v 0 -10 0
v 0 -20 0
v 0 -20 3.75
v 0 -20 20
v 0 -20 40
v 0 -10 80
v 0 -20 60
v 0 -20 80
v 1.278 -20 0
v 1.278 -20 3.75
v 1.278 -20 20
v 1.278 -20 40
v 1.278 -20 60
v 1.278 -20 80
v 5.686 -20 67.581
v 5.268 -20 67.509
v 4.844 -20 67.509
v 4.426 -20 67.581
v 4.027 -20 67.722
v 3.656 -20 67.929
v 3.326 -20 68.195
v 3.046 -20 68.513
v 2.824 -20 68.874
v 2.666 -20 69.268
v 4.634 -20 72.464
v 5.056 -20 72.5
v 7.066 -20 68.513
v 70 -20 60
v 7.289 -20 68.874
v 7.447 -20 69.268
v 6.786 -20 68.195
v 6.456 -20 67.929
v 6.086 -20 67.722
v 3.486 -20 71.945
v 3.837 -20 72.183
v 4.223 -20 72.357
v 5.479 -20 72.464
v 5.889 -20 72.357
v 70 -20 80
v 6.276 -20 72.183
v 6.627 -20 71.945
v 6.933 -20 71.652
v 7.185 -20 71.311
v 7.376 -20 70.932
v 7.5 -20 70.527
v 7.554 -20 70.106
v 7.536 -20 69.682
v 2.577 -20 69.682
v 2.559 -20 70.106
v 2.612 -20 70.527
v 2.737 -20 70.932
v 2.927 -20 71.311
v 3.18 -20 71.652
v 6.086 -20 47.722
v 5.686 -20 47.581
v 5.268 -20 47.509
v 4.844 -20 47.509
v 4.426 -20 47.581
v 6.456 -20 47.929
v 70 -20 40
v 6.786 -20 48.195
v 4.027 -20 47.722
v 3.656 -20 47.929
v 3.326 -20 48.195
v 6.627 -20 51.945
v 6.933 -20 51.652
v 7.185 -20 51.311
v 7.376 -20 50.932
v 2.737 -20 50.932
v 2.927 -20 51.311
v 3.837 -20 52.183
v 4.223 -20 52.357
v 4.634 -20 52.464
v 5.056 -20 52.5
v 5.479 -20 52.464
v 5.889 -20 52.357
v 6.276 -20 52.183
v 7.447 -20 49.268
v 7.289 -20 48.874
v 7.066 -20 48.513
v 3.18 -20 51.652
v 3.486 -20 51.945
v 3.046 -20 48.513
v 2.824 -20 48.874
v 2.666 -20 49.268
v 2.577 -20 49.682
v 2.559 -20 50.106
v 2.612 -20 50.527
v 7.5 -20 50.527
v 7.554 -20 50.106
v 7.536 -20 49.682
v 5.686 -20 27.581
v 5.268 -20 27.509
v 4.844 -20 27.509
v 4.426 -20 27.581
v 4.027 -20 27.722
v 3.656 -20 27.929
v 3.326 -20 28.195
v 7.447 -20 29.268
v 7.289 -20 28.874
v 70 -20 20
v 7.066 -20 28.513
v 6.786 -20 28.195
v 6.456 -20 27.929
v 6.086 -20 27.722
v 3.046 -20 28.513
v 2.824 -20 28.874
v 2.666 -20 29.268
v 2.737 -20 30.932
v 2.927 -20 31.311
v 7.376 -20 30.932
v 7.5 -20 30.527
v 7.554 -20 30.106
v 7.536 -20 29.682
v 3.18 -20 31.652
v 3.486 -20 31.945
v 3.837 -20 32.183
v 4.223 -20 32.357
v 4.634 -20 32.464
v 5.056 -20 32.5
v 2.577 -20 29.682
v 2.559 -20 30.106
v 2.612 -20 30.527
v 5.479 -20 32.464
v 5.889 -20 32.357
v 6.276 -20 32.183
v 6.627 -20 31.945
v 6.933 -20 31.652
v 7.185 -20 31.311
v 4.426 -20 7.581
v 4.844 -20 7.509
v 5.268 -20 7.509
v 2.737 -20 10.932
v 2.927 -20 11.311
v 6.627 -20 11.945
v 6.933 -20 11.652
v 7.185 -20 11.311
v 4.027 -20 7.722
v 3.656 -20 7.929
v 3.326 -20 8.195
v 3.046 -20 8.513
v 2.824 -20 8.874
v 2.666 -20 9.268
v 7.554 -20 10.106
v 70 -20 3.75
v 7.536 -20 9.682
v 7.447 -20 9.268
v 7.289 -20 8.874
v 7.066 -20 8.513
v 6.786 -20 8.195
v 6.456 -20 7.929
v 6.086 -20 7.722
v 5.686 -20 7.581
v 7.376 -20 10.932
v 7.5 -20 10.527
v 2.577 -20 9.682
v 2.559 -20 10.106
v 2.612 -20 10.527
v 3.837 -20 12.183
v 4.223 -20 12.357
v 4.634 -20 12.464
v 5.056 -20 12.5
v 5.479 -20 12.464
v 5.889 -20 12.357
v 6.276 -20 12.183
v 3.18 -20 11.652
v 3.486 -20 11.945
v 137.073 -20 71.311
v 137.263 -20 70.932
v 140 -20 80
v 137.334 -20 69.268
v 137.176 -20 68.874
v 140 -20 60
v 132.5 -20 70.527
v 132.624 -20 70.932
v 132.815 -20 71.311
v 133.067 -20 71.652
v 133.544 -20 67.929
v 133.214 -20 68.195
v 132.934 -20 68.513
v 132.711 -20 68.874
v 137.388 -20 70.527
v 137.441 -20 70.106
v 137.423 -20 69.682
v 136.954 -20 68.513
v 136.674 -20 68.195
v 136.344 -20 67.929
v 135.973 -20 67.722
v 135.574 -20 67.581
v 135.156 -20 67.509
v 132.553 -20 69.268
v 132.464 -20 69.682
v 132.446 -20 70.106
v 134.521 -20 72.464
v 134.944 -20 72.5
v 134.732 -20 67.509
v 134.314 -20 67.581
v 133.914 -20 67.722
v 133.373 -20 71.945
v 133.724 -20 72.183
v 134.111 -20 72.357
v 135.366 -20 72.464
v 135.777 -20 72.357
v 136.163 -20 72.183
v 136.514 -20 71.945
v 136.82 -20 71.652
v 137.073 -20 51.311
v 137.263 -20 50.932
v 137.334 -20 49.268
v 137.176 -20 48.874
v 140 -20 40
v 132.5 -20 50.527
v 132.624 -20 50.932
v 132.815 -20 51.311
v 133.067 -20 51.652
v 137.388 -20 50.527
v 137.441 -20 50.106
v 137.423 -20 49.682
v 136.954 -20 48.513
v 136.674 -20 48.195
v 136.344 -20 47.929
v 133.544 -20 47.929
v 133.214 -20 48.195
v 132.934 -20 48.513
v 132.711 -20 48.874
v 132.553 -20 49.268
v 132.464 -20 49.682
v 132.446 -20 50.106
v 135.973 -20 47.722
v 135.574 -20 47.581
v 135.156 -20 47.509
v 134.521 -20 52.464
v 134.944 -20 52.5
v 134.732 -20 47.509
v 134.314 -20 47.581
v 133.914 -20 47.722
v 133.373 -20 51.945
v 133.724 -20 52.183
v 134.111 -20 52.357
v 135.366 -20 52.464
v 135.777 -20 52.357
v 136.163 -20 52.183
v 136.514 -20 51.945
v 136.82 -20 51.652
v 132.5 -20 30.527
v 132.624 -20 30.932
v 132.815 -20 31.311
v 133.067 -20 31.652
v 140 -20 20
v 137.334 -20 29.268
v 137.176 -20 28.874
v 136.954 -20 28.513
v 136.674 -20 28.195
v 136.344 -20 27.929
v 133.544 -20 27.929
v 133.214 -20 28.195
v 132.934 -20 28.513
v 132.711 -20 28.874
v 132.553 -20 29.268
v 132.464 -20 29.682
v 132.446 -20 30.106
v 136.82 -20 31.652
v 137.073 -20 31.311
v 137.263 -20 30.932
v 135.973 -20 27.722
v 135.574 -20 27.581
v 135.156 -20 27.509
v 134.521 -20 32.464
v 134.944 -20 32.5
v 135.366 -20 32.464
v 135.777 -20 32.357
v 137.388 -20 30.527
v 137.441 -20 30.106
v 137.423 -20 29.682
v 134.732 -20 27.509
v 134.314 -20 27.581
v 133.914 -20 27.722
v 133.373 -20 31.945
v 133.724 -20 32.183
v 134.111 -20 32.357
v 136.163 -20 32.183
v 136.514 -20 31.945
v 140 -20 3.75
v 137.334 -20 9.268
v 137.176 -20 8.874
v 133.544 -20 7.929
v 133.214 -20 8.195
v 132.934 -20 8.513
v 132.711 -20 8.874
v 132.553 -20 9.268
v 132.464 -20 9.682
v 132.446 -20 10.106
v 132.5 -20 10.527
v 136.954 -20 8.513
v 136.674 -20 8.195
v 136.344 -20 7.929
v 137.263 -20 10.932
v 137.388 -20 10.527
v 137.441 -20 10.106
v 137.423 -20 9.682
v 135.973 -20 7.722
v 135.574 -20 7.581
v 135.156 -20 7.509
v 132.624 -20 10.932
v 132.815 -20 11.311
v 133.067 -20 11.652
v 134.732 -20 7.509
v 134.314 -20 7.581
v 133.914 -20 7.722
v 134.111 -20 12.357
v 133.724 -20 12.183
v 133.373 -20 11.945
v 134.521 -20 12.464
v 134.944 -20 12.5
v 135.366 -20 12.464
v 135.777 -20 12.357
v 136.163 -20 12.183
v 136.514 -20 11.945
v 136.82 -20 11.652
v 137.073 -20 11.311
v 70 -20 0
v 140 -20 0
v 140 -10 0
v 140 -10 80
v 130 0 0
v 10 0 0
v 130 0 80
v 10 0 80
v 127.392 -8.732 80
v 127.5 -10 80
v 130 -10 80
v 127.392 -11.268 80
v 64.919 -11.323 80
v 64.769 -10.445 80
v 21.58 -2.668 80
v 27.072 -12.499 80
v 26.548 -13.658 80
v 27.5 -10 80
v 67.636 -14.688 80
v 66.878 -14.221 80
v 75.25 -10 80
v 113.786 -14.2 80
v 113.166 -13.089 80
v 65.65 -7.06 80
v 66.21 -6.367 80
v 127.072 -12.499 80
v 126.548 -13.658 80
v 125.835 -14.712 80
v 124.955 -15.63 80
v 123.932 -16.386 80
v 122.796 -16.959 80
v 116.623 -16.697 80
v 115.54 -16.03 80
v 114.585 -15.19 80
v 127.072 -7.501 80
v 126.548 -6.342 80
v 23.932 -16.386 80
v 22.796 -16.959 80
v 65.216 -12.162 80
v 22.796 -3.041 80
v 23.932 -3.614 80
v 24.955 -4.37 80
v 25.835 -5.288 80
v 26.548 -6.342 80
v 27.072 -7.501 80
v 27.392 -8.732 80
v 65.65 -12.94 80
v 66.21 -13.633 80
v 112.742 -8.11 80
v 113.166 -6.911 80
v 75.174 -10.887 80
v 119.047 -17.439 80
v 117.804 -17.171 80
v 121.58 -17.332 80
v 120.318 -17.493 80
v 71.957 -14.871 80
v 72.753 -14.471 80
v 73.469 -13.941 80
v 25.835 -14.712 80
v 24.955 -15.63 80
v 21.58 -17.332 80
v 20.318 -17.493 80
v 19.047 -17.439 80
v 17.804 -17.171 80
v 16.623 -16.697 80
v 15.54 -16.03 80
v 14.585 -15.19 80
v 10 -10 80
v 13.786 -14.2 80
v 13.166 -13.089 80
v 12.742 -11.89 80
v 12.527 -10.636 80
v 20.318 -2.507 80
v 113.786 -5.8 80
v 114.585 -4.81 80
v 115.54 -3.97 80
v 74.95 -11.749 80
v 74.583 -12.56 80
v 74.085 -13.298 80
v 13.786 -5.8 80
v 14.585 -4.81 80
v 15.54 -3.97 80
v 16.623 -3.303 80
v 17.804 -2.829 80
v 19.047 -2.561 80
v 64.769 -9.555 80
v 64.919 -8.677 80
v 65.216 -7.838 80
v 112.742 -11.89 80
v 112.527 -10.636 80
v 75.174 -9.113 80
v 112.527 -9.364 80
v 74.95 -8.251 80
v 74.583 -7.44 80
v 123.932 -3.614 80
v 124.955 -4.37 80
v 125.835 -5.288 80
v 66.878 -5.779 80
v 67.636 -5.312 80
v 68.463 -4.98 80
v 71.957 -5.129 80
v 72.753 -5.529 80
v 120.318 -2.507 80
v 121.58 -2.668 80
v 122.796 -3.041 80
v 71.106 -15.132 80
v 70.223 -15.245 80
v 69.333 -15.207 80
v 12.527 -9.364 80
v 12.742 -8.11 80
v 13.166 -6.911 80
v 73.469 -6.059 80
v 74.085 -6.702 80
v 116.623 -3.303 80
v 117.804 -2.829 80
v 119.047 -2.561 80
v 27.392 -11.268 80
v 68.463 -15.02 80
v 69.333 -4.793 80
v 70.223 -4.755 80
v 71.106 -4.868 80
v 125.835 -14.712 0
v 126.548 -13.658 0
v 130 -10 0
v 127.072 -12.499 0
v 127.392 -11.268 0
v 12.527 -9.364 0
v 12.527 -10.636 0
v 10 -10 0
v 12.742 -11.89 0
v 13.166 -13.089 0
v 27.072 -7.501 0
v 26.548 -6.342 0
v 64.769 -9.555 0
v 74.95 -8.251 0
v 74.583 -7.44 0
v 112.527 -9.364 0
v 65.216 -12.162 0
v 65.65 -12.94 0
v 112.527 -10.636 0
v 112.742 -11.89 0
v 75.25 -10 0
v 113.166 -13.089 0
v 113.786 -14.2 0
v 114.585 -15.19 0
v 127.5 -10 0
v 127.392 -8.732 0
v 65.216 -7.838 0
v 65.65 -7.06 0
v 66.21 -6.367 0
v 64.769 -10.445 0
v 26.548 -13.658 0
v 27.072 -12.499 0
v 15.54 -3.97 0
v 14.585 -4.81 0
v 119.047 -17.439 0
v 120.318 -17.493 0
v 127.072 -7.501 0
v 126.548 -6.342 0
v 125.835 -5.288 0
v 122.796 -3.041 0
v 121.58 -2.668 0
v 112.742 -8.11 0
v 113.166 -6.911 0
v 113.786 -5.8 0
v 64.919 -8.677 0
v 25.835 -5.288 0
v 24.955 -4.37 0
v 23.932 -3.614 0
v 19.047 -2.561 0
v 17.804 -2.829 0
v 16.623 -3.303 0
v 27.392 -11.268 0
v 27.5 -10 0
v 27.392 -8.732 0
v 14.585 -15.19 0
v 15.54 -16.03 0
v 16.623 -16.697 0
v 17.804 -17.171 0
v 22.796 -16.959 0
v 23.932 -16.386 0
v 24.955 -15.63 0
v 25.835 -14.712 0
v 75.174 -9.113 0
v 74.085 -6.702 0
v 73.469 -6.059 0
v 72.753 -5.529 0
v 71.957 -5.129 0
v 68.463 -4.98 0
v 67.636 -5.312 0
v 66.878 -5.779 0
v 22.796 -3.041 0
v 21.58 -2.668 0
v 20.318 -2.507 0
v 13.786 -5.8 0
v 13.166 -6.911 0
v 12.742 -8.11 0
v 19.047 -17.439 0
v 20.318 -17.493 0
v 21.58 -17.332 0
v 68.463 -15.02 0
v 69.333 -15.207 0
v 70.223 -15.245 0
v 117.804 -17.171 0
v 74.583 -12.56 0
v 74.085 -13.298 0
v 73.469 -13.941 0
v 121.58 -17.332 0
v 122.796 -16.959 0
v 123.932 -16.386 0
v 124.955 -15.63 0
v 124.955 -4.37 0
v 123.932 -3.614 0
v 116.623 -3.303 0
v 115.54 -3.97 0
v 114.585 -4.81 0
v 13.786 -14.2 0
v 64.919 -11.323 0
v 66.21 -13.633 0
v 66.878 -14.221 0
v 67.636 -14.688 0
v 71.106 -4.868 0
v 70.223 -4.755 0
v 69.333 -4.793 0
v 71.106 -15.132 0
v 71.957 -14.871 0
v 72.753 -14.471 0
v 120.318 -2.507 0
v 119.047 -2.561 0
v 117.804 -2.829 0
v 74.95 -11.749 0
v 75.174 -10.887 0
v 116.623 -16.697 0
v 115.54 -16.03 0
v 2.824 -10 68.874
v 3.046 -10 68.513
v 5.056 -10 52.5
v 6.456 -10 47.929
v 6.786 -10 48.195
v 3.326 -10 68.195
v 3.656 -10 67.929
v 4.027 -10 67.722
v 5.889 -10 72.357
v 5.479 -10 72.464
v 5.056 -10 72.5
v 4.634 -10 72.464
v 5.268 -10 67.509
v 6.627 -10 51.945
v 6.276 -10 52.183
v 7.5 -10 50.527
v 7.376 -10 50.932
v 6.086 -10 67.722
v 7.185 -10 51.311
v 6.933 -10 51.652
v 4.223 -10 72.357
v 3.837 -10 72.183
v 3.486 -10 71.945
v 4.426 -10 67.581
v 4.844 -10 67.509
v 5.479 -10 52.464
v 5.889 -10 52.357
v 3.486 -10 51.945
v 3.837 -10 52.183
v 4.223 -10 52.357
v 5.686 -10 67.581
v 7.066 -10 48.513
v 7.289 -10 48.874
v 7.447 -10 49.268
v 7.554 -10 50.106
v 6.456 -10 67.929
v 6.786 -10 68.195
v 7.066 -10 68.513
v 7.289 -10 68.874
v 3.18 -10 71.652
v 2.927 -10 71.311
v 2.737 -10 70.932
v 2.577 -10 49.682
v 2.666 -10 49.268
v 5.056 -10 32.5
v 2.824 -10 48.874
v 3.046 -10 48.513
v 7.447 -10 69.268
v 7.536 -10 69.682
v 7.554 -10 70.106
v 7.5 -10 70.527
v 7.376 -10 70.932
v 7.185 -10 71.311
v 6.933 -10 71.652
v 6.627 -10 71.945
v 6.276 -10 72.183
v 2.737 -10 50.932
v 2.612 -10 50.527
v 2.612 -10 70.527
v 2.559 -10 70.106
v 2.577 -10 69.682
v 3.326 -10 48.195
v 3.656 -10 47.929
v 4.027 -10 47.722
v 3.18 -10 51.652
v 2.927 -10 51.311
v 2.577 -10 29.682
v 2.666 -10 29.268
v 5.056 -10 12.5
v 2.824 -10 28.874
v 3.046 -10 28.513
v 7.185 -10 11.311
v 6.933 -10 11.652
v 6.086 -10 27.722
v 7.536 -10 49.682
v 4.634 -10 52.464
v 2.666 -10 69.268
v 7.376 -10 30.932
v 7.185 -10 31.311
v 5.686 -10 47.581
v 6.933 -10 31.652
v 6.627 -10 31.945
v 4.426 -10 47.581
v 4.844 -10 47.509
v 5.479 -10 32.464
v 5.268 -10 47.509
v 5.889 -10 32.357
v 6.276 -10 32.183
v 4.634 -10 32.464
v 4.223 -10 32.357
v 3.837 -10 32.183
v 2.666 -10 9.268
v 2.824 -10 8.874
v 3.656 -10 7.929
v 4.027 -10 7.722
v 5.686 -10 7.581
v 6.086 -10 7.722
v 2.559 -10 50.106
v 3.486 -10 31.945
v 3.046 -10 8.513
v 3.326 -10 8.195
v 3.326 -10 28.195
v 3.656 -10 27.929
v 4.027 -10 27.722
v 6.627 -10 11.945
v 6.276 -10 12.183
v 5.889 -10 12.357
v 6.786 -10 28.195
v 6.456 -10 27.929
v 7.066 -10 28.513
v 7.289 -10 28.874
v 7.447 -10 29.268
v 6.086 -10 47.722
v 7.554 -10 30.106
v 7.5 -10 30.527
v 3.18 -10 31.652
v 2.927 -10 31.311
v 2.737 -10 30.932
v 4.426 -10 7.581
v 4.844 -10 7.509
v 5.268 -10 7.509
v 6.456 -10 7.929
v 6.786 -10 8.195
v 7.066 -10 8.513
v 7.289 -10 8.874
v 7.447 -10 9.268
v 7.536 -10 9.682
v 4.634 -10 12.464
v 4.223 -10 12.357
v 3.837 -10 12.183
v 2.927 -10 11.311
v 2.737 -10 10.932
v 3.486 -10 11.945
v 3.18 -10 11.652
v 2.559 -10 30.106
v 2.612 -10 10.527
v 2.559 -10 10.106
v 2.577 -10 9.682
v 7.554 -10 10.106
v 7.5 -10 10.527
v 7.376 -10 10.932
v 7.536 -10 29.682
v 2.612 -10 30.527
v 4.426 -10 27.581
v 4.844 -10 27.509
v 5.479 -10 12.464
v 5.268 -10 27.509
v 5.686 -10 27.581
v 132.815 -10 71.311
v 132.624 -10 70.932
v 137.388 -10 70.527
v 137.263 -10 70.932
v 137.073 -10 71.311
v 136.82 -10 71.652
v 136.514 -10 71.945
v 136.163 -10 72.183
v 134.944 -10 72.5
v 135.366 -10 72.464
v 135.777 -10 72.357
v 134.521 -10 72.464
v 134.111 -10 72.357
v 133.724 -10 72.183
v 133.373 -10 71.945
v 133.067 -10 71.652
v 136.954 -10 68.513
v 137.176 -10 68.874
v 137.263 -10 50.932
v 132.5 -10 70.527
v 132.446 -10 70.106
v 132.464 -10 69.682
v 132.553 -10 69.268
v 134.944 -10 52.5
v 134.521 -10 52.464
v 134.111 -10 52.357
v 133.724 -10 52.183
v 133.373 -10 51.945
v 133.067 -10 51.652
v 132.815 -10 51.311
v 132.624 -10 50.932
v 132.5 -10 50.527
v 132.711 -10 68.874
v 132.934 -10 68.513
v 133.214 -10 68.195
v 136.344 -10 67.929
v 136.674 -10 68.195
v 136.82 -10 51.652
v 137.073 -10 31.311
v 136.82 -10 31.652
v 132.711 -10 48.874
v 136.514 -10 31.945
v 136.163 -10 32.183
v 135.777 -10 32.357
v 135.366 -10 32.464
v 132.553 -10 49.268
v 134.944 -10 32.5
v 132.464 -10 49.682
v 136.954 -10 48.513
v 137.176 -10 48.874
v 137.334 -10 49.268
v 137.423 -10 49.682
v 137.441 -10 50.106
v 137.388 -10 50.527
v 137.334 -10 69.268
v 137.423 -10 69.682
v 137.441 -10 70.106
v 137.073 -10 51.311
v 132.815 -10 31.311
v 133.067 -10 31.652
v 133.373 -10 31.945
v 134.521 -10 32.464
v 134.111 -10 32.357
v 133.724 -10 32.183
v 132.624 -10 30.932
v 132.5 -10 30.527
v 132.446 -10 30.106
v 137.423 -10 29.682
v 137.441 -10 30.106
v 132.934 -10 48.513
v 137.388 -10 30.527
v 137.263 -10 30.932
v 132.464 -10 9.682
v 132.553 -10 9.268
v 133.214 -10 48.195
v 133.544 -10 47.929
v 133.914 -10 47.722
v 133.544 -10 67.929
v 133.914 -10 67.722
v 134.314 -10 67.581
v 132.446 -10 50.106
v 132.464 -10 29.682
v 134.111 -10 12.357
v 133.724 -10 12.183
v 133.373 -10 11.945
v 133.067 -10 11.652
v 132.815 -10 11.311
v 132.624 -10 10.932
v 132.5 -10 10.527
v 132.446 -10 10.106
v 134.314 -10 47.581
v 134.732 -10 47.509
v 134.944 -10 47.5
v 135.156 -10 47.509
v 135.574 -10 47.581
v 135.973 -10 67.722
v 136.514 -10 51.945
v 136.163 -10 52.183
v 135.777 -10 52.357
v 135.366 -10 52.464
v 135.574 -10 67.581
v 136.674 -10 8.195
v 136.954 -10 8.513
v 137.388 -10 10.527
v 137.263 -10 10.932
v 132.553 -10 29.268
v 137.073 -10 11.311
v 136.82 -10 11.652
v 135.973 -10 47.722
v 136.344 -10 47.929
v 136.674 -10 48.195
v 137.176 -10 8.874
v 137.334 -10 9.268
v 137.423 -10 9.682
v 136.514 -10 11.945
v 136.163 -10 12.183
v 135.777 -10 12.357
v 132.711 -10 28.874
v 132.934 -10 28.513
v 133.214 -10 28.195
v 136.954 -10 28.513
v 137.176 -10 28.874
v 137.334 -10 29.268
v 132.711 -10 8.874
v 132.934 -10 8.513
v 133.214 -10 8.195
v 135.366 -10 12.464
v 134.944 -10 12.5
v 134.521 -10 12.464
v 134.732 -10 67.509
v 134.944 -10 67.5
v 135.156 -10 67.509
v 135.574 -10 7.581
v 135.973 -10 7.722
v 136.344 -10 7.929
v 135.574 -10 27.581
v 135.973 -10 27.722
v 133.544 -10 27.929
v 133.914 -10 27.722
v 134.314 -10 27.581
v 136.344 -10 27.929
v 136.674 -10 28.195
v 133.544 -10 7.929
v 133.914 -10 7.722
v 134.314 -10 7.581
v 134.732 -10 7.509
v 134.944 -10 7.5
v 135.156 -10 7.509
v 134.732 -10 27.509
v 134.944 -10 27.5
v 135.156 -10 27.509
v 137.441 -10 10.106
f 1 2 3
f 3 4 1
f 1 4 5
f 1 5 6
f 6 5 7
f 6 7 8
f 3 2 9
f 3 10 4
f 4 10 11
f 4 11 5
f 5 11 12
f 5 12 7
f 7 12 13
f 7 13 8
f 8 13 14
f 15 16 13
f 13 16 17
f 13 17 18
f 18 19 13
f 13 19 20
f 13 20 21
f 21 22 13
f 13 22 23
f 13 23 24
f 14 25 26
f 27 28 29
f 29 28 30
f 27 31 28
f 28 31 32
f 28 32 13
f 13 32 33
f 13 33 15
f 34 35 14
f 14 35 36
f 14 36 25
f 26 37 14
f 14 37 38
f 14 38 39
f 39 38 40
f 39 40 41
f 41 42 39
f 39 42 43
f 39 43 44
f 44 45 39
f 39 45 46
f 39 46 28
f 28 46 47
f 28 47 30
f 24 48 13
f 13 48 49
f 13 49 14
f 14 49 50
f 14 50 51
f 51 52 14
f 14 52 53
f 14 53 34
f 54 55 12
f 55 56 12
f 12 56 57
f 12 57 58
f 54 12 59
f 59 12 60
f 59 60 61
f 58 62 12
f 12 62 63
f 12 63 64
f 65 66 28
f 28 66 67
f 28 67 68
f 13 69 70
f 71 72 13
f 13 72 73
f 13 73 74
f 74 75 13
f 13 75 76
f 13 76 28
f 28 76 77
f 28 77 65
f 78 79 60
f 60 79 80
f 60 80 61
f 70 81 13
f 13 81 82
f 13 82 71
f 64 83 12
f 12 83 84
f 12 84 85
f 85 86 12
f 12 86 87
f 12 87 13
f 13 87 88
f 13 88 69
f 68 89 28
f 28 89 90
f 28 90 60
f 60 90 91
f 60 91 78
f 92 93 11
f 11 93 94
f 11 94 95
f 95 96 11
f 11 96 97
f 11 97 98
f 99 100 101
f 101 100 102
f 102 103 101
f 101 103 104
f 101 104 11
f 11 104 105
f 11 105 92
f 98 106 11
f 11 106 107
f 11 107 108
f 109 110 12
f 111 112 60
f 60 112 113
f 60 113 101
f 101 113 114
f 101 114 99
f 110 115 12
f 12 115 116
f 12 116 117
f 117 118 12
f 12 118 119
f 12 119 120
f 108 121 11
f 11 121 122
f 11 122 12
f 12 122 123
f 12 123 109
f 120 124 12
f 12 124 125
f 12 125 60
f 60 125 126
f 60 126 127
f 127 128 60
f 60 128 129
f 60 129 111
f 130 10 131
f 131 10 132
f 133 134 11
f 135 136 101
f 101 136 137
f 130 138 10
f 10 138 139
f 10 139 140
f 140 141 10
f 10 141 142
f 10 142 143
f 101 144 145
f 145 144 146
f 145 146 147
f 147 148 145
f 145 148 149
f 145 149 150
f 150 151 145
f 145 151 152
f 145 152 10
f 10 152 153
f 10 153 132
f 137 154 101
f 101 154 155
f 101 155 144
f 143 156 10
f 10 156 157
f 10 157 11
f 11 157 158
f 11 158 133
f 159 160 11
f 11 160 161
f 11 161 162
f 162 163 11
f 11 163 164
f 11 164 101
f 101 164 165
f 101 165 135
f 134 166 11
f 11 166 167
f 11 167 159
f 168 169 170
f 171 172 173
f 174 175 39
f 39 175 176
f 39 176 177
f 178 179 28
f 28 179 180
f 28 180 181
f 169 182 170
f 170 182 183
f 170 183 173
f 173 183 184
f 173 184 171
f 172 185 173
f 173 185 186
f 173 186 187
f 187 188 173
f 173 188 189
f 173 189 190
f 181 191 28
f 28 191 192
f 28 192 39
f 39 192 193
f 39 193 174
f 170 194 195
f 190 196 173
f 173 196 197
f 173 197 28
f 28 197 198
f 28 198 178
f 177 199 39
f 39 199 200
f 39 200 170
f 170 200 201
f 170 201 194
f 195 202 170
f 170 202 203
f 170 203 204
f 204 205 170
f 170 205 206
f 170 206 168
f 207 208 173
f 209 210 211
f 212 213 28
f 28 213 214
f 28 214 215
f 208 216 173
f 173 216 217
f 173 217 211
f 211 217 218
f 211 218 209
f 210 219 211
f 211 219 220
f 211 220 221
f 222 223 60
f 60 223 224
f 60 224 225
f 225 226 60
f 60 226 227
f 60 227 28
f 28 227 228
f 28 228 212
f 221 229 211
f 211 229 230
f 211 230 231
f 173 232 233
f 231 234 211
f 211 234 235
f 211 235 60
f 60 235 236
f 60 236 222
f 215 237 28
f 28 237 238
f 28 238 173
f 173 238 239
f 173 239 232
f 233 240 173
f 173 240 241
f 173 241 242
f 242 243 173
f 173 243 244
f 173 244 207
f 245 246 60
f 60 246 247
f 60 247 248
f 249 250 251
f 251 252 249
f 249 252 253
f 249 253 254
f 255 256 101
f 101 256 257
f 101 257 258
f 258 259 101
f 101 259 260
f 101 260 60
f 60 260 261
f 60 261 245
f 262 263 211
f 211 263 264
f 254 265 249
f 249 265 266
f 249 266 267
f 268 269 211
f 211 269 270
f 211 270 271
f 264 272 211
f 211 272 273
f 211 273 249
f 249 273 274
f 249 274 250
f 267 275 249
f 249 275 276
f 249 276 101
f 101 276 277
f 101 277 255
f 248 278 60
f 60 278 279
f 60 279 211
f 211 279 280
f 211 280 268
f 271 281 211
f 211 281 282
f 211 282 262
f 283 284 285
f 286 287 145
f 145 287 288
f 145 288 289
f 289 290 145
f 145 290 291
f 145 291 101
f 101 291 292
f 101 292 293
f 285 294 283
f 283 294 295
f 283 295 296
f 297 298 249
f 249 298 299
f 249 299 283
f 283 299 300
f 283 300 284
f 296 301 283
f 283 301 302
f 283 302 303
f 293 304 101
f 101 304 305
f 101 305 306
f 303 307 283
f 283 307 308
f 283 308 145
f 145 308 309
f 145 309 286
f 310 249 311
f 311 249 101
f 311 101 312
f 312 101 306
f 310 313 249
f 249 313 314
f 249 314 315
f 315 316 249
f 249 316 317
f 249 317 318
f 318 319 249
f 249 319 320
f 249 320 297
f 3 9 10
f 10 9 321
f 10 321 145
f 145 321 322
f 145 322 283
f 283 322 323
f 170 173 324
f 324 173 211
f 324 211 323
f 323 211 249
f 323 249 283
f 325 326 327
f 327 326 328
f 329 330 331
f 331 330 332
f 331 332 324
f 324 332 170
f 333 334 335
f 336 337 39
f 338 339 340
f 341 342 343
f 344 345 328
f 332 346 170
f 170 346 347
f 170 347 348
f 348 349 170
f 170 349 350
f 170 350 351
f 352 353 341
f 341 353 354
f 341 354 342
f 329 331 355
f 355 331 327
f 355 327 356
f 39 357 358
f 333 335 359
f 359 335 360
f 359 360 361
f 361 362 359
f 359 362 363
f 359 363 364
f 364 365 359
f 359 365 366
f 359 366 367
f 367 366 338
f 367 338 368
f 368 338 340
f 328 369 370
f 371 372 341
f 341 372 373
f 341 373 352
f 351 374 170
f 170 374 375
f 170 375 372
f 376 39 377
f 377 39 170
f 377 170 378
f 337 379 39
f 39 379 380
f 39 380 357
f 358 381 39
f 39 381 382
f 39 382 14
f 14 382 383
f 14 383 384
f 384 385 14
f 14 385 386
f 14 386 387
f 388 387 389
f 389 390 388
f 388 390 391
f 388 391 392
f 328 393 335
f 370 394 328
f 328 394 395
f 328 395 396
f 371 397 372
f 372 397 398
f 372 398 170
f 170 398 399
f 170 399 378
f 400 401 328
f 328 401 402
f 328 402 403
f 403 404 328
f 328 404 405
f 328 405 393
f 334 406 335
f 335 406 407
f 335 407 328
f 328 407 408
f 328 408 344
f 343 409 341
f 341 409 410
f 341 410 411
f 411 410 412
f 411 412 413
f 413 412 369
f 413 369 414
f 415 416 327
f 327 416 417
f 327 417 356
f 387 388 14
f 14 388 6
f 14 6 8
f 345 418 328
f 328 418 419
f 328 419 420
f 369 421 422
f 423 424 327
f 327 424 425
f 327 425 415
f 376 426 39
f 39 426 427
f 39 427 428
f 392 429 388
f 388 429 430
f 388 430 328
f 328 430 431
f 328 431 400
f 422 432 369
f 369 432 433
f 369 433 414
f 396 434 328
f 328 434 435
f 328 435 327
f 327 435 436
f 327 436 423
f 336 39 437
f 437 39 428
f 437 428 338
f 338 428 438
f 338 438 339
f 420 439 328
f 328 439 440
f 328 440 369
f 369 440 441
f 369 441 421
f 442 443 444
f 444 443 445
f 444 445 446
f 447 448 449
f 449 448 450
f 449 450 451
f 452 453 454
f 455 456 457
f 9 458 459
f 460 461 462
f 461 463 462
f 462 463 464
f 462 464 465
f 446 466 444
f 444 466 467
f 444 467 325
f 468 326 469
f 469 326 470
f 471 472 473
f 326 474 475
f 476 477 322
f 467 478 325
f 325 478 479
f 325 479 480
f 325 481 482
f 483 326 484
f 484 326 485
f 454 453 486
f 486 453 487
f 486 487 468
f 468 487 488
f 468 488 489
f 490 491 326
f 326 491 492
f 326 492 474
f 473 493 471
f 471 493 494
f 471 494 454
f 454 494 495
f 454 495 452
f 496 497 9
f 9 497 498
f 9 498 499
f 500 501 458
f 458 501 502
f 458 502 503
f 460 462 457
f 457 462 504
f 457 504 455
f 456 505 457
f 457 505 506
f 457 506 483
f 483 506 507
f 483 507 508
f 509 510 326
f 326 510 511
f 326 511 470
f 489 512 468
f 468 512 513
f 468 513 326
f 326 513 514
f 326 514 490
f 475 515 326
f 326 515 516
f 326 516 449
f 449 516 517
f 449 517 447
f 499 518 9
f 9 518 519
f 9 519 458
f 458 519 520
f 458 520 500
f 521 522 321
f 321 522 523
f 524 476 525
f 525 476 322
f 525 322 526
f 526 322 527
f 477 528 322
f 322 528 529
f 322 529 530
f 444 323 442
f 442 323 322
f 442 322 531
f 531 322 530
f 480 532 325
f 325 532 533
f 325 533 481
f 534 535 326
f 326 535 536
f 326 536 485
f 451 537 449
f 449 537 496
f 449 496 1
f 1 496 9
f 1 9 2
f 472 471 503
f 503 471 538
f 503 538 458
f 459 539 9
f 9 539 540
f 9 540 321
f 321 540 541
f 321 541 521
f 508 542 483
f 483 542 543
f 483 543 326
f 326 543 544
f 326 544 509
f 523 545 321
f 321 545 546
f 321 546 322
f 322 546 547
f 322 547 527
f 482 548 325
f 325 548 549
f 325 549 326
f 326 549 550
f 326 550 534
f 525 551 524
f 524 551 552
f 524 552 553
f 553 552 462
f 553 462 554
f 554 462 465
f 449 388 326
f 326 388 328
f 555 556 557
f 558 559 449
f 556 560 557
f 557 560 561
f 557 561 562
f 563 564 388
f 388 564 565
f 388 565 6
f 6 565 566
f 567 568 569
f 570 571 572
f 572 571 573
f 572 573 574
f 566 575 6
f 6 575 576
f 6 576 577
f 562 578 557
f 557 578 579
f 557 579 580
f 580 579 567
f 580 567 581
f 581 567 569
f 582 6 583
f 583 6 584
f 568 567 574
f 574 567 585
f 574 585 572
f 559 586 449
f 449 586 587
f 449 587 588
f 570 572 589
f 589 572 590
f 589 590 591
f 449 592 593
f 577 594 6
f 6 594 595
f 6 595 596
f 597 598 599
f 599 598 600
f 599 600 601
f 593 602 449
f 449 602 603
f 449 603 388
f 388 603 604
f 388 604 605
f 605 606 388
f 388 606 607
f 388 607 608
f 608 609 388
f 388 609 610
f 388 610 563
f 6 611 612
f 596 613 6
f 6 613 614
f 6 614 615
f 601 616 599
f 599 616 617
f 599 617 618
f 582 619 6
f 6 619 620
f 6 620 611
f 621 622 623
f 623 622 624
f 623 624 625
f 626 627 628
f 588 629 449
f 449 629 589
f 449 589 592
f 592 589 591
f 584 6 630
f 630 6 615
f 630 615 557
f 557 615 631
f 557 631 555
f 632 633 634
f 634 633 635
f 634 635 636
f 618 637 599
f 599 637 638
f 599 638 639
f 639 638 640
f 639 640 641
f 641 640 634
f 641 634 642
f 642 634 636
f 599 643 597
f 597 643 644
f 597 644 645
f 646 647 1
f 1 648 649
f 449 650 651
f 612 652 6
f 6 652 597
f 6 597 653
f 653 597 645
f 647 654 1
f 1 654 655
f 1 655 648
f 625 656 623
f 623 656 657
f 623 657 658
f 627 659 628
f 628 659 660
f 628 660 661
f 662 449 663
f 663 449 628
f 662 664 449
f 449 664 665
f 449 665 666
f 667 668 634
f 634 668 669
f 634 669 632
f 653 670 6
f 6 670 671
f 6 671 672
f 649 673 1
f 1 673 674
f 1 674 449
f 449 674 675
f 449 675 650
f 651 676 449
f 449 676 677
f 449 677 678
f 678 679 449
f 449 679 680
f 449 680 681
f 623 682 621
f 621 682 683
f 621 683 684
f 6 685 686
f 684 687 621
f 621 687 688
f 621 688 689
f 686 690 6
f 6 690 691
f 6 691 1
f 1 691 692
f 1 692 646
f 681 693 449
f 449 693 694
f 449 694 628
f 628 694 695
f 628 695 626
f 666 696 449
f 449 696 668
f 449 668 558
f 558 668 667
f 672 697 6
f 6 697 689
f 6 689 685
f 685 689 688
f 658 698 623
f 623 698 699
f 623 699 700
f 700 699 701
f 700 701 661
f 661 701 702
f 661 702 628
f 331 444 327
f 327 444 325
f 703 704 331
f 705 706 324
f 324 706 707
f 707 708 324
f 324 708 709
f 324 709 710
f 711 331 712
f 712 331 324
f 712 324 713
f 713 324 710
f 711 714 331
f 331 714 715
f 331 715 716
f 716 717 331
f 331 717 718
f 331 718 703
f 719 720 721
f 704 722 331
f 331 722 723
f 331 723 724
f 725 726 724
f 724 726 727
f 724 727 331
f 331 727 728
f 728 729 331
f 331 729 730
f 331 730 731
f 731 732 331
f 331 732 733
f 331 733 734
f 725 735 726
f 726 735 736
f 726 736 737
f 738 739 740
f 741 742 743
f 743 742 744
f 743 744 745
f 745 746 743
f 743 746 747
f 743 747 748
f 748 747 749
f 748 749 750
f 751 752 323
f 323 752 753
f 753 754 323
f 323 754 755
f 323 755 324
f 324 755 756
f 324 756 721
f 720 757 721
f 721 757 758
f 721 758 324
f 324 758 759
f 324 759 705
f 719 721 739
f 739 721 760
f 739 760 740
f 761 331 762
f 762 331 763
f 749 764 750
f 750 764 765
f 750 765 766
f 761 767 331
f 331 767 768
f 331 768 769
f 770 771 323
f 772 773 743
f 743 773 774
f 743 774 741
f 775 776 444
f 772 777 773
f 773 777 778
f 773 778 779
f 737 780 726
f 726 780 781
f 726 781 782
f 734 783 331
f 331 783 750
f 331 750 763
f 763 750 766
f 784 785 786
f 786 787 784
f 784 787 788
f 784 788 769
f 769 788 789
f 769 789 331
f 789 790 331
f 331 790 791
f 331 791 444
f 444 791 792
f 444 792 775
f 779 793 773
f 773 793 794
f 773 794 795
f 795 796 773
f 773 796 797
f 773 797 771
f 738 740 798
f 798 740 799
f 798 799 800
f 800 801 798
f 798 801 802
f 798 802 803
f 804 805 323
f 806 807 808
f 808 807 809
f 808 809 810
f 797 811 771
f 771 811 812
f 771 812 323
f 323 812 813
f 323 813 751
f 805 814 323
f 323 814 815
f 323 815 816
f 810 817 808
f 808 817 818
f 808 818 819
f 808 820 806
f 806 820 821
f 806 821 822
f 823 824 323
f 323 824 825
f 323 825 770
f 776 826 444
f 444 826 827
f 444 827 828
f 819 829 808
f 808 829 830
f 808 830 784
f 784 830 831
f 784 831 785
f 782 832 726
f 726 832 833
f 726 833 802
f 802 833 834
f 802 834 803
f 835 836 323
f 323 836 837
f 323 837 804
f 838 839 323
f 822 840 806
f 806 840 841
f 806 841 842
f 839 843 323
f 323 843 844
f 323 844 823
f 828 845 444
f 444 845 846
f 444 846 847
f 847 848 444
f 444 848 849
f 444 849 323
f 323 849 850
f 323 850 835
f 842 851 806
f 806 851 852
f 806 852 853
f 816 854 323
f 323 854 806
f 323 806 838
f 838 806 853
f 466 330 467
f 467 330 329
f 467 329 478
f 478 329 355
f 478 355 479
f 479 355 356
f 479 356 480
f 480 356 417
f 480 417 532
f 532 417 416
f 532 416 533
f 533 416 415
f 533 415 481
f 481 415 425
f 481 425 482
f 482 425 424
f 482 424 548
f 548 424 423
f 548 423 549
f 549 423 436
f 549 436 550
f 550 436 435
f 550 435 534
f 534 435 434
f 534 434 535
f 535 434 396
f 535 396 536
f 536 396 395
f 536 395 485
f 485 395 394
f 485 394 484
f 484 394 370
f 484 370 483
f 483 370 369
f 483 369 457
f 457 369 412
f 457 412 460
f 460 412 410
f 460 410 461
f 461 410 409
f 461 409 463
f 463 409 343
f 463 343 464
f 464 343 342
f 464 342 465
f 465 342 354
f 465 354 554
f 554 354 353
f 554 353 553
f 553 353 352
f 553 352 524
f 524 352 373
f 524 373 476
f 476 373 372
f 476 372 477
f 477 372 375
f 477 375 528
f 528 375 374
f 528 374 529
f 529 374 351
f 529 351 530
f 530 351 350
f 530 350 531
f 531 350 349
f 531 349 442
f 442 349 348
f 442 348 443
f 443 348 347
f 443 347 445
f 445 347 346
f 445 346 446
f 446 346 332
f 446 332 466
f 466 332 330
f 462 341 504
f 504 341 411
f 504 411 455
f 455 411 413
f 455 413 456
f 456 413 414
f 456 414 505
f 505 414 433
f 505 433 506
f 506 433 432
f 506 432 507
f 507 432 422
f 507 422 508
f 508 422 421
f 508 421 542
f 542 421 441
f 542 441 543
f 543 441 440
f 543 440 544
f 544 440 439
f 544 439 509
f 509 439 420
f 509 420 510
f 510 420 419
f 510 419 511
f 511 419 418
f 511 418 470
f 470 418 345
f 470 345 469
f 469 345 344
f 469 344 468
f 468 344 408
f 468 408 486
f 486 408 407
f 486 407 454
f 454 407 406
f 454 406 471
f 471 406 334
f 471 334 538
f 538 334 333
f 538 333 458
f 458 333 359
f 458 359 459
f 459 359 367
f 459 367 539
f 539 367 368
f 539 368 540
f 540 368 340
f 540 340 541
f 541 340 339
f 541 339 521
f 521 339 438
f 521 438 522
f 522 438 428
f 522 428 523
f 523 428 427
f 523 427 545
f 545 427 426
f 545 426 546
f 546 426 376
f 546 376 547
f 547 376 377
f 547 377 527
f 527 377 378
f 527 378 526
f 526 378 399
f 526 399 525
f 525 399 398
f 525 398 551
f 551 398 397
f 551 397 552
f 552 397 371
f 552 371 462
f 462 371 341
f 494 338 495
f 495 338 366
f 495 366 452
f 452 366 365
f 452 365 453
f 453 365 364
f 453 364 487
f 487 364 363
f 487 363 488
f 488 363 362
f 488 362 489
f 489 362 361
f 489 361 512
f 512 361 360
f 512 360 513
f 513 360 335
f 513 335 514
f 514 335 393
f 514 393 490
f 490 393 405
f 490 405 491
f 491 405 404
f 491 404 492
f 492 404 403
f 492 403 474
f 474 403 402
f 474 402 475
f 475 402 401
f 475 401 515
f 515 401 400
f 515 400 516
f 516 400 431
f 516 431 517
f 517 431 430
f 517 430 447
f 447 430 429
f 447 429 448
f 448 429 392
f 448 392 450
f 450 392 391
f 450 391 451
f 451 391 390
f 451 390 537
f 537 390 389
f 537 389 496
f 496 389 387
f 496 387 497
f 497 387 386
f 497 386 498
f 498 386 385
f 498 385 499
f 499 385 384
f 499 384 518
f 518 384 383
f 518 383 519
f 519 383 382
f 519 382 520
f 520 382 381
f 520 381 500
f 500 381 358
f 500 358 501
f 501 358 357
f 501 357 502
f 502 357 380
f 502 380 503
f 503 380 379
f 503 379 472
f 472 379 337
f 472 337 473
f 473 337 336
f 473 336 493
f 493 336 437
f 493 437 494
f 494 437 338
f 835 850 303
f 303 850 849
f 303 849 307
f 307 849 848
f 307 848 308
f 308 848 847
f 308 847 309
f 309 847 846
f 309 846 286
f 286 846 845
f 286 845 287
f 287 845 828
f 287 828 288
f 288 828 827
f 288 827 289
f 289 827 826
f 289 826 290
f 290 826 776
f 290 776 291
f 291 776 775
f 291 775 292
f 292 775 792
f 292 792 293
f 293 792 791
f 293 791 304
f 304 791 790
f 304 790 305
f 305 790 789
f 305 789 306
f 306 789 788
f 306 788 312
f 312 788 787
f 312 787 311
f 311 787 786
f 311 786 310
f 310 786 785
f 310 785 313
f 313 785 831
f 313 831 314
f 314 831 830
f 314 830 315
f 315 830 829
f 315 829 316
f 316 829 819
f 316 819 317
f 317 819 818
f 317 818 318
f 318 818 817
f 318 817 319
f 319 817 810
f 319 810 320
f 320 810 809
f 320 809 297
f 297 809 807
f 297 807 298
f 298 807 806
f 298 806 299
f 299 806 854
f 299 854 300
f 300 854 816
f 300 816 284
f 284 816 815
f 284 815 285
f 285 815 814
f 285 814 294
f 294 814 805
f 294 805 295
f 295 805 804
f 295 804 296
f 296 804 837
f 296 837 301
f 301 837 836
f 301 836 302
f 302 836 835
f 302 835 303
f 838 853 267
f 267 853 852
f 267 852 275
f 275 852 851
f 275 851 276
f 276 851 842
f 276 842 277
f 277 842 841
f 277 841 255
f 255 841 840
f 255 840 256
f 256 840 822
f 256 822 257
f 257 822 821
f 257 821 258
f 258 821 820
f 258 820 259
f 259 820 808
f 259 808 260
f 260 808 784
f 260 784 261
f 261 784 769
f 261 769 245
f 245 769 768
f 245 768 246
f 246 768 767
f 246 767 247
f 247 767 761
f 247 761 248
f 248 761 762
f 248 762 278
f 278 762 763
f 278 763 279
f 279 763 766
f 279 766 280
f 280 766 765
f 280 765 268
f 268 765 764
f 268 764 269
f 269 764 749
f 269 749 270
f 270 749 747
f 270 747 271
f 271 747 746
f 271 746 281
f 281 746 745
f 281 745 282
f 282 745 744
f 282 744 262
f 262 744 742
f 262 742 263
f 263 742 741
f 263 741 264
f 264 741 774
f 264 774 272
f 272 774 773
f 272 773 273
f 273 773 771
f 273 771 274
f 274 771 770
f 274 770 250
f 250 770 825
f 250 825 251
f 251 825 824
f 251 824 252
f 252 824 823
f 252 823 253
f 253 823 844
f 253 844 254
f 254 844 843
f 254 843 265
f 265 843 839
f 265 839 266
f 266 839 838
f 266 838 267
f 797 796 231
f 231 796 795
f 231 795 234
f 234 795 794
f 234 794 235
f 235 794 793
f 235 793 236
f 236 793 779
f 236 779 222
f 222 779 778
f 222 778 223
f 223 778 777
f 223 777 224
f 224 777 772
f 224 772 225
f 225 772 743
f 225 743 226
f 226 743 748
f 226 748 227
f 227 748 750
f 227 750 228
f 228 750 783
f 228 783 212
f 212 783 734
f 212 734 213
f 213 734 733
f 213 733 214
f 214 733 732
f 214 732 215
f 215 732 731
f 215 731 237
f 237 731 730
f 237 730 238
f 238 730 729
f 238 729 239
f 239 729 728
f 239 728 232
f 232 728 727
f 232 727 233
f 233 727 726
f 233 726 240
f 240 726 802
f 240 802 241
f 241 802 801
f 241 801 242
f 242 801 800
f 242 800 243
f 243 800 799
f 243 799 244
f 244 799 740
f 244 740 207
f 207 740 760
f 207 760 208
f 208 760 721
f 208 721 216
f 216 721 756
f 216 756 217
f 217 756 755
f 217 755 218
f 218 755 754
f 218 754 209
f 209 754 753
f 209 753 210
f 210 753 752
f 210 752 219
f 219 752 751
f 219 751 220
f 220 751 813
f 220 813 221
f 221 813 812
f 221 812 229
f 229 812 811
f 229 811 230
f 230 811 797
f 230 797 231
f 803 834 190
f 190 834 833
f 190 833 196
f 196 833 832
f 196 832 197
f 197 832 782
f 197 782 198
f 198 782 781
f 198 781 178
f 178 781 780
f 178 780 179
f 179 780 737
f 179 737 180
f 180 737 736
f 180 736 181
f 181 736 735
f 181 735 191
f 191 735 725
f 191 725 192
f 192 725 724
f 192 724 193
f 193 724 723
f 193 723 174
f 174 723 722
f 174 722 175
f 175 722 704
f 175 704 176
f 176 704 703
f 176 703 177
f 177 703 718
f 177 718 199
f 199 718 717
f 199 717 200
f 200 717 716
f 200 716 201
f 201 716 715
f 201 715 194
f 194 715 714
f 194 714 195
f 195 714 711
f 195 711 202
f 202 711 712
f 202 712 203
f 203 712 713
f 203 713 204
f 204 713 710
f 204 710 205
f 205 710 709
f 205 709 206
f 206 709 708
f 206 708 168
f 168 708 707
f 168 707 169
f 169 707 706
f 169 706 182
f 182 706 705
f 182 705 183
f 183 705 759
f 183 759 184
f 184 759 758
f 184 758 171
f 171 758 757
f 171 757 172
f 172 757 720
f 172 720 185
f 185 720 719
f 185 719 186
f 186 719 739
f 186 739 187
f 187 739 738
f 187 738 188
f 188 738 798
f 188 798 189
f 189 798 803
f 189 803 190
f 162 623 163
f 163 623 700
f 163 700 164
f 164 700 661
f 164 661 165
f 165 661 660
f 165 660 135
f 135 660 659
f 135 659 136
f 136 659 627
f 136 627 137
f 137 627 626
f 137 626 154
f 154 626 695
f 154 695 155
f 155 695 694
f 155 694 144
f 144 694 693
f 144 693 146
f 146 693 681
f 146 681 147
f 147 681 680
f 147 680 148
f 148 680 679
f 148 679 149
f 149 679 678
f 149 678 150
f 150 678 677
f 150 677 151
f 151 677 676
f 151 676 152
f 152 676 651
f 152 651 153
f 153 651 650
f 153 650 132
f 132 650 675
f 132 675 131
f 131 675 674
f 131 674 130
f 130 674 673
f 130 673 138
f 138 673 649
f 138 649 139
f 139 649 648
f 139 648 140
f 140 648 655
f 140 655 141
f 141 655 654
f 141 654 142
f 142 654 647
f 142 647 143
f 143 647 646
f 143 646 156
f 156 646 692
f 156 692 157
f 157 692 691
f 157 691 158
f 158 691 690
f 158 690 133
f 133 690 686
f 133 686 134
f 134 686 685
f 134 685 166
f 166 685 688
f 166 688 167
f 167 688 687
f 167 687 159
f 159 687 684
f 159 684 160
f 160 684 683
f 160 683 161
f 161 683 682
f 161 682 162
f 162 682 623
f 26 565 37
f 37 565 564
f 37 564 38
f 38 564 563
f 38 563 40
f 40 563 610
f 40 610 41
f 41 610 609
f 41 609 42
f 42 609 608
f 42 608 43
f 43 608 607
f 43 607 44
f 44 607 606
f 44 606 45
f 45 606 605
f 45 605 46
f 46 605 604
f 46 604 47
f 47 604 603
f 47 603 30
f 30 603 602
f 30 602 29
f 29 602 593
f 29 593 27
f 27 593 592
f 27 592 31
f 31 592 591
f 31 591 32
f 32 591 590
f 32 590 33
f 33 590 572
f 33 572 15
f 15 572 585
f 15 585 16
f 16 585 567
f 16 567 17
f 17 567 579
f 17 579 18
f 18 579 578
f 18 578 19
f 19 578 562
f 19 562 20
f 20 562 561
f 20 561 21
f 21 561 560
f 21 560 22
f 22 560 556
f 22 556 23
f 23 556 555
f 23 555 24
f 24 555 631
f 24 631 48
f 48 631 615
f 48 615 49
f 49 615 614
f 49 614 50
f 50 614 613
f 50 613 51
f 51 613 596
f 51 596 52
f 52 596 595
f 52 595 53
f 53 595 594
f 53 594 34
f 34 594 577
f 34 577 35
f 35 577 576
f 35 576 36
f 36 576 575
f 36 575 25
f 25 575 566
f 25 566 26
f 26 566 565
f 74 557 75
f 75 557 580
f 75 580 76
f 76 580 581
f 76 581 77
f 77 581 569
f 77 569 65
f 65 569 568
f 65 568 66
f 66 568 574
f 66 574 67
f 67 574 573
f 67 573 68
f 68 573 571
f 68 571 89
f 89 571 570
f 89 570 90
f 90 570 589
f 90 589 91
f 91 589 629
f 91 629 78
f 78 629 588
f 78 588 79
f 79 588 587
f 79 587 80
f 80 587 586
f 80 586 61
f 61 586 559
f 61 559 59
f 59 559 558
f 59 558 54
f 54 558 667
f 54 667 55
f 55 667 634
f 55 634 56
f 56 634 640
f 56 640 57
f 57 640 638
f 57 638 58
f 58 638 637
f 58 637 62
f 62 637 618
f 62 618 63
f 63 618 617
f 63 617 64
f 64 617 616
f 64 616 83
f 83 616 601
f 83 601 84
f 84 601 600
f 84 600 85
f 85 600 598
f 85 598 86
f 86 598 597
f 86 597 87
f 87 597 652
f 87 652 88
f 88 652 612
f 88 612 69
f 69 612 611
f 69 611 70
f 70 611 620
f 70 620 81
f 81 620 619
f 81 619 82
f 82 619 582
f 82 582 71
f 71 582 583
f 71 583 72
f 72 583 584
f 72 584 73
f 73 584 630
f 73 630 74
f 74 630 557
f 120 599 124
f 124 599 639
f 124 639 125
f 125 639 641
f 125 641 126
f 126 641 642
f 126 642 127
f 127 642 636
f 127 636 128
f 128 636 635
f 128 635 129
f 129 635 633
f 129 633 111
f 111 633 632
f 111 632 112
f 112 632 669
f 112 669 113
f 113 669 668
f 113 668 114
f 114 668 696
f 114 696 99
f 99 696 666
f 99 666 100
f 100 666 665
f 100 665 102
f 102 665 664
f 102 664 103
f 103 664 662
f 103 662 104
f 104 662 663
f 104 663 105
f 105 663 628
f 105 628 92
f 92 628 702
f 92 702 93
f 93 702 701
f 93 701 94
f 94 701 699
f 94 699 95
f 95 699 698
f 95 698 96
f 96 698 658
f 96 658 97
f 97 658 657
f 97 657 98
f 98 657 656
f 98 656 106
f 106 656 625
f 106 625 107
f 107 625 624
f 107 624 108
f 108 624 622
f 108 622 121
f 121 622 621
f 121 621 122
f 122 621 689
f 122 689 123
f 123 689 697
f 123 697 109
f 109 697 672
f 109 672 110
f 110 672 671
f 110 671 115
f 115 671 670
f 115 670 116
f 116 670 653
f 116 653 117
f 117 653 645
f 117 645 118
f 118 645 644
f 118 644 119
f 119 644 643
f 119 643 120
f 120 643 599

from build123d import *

# Parameters (mm, degrees)
SKETCH1_W           = 140
SKETCH1_H           = 20
BOSS_EXTRUDE1_DEPTH = 80
SKETCH2_W           = 10
SKETCH2_H           = 80
CUT_EXTRUDE1_DEPTH  = 10
SKETCH3_R           = 7.5
SKETCH3_R_2         = 5.25
CUT_EXTRUDE2_DEPTH  = 80
SKETCH4_R           = 2.5
CUT_EXTRUDE4_DEPTH  = 440


with BuildPart() as part:
    # Sketch1 → Boss-Extrude1 (new body)
    with BuildSketch(Plane.XY):
        with Locations((70, -10)):
            Rectangle(SKETCH1_W, SKETCH1_H)
    extrude(amount=BOSS_EXTRUDE1_DEPTH)

    # Sketch2 → Cut-Extrude1 (cut)
    with BuildSketch(Plane(origin=(0, 0, 0), x_dir=(1, 0, 0), z_dir=(0, 1, 0))):
        with Locations((135, -40)):
            Rectangle(SKETCH2_W, SKETCH2_H)
        with Locations((5, -40)):
            Rectangle(SKETCH2_W, SKETCH2_H)
    extrude(amount=-CUT_EXTRUDE1_DEPTH, mode=Mode.SUBTRACT)

    # Sketch3 → Cut-Extrude2 (cut)
    with BuildSketch(Plane.XY.offset(80)):
        with Locations((20, -10)):
            Circle(SKETCH3_R)
        with Locations((70, -10)):
            Circle(SKETCH3_R_2)
        with Locations((120, -10)):
            Circle(SKETCH3_R)
    extrude(amount=-CUT_EXTRUDE2_DEPTH, mode=Mode.SUBTRACT)

    # Sketch4 → Cut-Extrude4 (cut)
    with BuildSketch(Plane(origin=(0, -10, 0), x_dir=(1, 0, 0), z_dir=(0, 1, 0))):
        with Locations(Location((5.056286957, -10, 0), (0, 0, 270))):
            Circle(SKETCH4_R)
        with Locations(Location((5.056286957, -30, 0), (0, 0, 270))):
            Circle(SKETCH4_R)
        with Locations(Location((5.056286957, -50, 0), (0, 0, 270))):
            Circle(SKETCH4_R)
        with Locations(Location((5.056286957, -70, 0), (0, 0, 270))):
            Circle(SKETCH4_R)
        with Locations(Location((134.943713043, -70, 0), (0, 0, 270))):
            Circle(SKETCH4_R)
        with Locations(Location((134.943713043, -50, 0), (0, 0, 270))):
            Circle(SKETCH4_R)
        with Locations(Location((134.943713043, -30, 0), (0, 0, 270))):
            Circle(SKETCH4_R)
        with Locations(Location((134.943713043, -10, 0), (0, 0, 270))):
            Circle(SKETCH4_R)
    extrude(amount=-CUT_EXTRUDE4_DEPTH, mode=Mode.SUBTRACT)


solid = part.part
